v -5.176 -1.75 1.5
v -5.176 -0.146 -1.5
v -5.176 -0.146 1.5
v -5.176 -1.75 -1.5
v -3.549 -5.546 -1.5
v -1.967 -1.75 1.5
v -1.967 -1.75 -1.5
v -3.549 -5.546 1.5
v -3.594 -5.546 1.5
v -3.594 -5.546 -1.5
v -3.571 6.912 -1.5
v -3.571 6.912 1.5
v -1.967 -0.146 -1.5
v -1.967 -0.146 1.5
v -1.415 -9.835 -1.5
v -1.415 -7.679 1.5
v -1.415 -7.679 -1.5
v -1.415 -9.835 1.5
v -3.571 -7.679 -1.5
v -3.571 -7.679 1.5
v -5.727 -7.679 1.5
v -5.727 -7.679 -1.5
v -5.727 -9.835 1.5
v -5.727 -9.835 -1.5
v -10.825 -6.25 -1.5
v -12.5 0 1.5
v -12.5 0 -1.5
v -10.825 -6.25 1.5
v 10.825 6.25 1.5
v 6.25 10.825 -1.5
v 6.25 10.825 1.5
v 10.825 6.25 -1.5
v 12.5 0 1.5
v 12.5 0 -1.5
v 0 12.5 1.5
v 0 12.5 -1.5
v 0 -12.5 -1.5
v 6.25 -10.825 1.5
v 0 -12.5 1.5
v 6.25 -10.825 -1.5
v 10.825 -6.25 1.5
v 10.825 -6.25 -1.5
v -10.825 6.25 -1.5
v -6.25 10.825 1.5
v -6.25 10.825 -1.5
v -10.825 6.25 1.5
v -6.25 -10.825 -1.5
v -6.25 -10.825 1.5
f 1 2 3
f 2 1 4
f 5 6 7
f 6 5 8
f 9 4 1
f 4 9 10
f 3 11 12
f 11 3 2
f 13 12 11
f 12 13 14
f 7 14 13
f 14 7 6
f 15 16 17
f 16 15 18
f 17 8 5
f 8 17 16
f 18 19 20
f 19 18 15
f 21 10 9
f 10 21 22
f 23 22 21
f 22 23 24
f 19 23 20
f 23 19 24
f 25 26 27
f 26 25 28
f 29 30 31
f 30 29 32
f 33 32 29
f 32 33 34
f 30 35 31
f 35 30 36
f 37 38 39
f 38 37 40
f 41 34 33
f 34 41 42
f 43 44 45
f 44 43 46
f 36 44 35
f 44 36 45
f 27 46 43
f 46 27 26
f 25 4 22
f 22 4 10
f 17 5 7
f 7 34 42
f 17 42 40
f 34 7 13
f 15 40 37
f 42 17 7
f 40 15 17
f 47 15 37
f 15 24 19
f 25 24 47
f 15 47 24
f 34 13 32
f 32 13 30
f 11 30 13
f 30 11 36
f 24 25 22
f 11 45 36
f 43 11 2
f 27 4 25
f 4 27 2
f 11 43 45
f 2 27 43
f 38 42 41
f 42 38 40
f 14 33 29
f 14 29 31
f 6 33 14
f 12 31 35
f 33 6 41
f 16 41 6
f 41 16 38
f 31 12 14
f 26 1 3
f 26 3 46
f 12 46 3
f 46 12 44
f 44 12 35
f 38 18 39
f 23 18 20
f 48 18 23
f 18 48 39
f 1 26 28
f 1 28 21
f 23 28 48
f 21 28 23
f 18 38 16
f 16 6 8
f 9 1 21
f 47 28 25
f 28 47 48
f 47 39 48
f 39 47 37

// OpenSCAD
$fn=12;

// unit is mm

diameter = 25;
thickness = 3;
arrow_base = 7;

diameter_2 = diameter / 2;
d2 = diameter / 2;
thickness12 = 1.2 * thickness;
fs = 0.4 * arrow_base; // feather side
fs2 = 2 * fs;


difference() {

  union() {

    cylinder(d=diameter, h=thickness, center=true);
  }

  translate([ -diameter / 7, -0.07 * diameter, 0 ]) scale([ 0.77, 0.77, 1 ])
    union() {

        d = diameter / 6;
        s = diameter / 12;

        translate([ 0, 0, -0.5 * thickness12 ])
          linear_extrude(thickness12)
            polygon([
              [ s, 0 ], [ s, s ], [ 0, 2.7 * d ],
              [ -s, s ], [ -s, 0 ], [ 0, -1.2 * d ] ]);

        translate([ 0, -0.84 * diameter_2, -0.5 * thickness12 ])
          linear_extrude(thickness12)
            polygon([ [ 0, fs ], [ 0, fs2 ], [ fs, fs ], [ fs, 0 ] ]);
        translate([ 0, -0.84 * diameter_2, -0.5 * thickness12 ])
          linear_extrude(thickness12)
            polygon([ [ 0, fs ], [ 0, fs2 ], [ -fs, fs ], [ -fs, 0 ] ]);
    }
}
